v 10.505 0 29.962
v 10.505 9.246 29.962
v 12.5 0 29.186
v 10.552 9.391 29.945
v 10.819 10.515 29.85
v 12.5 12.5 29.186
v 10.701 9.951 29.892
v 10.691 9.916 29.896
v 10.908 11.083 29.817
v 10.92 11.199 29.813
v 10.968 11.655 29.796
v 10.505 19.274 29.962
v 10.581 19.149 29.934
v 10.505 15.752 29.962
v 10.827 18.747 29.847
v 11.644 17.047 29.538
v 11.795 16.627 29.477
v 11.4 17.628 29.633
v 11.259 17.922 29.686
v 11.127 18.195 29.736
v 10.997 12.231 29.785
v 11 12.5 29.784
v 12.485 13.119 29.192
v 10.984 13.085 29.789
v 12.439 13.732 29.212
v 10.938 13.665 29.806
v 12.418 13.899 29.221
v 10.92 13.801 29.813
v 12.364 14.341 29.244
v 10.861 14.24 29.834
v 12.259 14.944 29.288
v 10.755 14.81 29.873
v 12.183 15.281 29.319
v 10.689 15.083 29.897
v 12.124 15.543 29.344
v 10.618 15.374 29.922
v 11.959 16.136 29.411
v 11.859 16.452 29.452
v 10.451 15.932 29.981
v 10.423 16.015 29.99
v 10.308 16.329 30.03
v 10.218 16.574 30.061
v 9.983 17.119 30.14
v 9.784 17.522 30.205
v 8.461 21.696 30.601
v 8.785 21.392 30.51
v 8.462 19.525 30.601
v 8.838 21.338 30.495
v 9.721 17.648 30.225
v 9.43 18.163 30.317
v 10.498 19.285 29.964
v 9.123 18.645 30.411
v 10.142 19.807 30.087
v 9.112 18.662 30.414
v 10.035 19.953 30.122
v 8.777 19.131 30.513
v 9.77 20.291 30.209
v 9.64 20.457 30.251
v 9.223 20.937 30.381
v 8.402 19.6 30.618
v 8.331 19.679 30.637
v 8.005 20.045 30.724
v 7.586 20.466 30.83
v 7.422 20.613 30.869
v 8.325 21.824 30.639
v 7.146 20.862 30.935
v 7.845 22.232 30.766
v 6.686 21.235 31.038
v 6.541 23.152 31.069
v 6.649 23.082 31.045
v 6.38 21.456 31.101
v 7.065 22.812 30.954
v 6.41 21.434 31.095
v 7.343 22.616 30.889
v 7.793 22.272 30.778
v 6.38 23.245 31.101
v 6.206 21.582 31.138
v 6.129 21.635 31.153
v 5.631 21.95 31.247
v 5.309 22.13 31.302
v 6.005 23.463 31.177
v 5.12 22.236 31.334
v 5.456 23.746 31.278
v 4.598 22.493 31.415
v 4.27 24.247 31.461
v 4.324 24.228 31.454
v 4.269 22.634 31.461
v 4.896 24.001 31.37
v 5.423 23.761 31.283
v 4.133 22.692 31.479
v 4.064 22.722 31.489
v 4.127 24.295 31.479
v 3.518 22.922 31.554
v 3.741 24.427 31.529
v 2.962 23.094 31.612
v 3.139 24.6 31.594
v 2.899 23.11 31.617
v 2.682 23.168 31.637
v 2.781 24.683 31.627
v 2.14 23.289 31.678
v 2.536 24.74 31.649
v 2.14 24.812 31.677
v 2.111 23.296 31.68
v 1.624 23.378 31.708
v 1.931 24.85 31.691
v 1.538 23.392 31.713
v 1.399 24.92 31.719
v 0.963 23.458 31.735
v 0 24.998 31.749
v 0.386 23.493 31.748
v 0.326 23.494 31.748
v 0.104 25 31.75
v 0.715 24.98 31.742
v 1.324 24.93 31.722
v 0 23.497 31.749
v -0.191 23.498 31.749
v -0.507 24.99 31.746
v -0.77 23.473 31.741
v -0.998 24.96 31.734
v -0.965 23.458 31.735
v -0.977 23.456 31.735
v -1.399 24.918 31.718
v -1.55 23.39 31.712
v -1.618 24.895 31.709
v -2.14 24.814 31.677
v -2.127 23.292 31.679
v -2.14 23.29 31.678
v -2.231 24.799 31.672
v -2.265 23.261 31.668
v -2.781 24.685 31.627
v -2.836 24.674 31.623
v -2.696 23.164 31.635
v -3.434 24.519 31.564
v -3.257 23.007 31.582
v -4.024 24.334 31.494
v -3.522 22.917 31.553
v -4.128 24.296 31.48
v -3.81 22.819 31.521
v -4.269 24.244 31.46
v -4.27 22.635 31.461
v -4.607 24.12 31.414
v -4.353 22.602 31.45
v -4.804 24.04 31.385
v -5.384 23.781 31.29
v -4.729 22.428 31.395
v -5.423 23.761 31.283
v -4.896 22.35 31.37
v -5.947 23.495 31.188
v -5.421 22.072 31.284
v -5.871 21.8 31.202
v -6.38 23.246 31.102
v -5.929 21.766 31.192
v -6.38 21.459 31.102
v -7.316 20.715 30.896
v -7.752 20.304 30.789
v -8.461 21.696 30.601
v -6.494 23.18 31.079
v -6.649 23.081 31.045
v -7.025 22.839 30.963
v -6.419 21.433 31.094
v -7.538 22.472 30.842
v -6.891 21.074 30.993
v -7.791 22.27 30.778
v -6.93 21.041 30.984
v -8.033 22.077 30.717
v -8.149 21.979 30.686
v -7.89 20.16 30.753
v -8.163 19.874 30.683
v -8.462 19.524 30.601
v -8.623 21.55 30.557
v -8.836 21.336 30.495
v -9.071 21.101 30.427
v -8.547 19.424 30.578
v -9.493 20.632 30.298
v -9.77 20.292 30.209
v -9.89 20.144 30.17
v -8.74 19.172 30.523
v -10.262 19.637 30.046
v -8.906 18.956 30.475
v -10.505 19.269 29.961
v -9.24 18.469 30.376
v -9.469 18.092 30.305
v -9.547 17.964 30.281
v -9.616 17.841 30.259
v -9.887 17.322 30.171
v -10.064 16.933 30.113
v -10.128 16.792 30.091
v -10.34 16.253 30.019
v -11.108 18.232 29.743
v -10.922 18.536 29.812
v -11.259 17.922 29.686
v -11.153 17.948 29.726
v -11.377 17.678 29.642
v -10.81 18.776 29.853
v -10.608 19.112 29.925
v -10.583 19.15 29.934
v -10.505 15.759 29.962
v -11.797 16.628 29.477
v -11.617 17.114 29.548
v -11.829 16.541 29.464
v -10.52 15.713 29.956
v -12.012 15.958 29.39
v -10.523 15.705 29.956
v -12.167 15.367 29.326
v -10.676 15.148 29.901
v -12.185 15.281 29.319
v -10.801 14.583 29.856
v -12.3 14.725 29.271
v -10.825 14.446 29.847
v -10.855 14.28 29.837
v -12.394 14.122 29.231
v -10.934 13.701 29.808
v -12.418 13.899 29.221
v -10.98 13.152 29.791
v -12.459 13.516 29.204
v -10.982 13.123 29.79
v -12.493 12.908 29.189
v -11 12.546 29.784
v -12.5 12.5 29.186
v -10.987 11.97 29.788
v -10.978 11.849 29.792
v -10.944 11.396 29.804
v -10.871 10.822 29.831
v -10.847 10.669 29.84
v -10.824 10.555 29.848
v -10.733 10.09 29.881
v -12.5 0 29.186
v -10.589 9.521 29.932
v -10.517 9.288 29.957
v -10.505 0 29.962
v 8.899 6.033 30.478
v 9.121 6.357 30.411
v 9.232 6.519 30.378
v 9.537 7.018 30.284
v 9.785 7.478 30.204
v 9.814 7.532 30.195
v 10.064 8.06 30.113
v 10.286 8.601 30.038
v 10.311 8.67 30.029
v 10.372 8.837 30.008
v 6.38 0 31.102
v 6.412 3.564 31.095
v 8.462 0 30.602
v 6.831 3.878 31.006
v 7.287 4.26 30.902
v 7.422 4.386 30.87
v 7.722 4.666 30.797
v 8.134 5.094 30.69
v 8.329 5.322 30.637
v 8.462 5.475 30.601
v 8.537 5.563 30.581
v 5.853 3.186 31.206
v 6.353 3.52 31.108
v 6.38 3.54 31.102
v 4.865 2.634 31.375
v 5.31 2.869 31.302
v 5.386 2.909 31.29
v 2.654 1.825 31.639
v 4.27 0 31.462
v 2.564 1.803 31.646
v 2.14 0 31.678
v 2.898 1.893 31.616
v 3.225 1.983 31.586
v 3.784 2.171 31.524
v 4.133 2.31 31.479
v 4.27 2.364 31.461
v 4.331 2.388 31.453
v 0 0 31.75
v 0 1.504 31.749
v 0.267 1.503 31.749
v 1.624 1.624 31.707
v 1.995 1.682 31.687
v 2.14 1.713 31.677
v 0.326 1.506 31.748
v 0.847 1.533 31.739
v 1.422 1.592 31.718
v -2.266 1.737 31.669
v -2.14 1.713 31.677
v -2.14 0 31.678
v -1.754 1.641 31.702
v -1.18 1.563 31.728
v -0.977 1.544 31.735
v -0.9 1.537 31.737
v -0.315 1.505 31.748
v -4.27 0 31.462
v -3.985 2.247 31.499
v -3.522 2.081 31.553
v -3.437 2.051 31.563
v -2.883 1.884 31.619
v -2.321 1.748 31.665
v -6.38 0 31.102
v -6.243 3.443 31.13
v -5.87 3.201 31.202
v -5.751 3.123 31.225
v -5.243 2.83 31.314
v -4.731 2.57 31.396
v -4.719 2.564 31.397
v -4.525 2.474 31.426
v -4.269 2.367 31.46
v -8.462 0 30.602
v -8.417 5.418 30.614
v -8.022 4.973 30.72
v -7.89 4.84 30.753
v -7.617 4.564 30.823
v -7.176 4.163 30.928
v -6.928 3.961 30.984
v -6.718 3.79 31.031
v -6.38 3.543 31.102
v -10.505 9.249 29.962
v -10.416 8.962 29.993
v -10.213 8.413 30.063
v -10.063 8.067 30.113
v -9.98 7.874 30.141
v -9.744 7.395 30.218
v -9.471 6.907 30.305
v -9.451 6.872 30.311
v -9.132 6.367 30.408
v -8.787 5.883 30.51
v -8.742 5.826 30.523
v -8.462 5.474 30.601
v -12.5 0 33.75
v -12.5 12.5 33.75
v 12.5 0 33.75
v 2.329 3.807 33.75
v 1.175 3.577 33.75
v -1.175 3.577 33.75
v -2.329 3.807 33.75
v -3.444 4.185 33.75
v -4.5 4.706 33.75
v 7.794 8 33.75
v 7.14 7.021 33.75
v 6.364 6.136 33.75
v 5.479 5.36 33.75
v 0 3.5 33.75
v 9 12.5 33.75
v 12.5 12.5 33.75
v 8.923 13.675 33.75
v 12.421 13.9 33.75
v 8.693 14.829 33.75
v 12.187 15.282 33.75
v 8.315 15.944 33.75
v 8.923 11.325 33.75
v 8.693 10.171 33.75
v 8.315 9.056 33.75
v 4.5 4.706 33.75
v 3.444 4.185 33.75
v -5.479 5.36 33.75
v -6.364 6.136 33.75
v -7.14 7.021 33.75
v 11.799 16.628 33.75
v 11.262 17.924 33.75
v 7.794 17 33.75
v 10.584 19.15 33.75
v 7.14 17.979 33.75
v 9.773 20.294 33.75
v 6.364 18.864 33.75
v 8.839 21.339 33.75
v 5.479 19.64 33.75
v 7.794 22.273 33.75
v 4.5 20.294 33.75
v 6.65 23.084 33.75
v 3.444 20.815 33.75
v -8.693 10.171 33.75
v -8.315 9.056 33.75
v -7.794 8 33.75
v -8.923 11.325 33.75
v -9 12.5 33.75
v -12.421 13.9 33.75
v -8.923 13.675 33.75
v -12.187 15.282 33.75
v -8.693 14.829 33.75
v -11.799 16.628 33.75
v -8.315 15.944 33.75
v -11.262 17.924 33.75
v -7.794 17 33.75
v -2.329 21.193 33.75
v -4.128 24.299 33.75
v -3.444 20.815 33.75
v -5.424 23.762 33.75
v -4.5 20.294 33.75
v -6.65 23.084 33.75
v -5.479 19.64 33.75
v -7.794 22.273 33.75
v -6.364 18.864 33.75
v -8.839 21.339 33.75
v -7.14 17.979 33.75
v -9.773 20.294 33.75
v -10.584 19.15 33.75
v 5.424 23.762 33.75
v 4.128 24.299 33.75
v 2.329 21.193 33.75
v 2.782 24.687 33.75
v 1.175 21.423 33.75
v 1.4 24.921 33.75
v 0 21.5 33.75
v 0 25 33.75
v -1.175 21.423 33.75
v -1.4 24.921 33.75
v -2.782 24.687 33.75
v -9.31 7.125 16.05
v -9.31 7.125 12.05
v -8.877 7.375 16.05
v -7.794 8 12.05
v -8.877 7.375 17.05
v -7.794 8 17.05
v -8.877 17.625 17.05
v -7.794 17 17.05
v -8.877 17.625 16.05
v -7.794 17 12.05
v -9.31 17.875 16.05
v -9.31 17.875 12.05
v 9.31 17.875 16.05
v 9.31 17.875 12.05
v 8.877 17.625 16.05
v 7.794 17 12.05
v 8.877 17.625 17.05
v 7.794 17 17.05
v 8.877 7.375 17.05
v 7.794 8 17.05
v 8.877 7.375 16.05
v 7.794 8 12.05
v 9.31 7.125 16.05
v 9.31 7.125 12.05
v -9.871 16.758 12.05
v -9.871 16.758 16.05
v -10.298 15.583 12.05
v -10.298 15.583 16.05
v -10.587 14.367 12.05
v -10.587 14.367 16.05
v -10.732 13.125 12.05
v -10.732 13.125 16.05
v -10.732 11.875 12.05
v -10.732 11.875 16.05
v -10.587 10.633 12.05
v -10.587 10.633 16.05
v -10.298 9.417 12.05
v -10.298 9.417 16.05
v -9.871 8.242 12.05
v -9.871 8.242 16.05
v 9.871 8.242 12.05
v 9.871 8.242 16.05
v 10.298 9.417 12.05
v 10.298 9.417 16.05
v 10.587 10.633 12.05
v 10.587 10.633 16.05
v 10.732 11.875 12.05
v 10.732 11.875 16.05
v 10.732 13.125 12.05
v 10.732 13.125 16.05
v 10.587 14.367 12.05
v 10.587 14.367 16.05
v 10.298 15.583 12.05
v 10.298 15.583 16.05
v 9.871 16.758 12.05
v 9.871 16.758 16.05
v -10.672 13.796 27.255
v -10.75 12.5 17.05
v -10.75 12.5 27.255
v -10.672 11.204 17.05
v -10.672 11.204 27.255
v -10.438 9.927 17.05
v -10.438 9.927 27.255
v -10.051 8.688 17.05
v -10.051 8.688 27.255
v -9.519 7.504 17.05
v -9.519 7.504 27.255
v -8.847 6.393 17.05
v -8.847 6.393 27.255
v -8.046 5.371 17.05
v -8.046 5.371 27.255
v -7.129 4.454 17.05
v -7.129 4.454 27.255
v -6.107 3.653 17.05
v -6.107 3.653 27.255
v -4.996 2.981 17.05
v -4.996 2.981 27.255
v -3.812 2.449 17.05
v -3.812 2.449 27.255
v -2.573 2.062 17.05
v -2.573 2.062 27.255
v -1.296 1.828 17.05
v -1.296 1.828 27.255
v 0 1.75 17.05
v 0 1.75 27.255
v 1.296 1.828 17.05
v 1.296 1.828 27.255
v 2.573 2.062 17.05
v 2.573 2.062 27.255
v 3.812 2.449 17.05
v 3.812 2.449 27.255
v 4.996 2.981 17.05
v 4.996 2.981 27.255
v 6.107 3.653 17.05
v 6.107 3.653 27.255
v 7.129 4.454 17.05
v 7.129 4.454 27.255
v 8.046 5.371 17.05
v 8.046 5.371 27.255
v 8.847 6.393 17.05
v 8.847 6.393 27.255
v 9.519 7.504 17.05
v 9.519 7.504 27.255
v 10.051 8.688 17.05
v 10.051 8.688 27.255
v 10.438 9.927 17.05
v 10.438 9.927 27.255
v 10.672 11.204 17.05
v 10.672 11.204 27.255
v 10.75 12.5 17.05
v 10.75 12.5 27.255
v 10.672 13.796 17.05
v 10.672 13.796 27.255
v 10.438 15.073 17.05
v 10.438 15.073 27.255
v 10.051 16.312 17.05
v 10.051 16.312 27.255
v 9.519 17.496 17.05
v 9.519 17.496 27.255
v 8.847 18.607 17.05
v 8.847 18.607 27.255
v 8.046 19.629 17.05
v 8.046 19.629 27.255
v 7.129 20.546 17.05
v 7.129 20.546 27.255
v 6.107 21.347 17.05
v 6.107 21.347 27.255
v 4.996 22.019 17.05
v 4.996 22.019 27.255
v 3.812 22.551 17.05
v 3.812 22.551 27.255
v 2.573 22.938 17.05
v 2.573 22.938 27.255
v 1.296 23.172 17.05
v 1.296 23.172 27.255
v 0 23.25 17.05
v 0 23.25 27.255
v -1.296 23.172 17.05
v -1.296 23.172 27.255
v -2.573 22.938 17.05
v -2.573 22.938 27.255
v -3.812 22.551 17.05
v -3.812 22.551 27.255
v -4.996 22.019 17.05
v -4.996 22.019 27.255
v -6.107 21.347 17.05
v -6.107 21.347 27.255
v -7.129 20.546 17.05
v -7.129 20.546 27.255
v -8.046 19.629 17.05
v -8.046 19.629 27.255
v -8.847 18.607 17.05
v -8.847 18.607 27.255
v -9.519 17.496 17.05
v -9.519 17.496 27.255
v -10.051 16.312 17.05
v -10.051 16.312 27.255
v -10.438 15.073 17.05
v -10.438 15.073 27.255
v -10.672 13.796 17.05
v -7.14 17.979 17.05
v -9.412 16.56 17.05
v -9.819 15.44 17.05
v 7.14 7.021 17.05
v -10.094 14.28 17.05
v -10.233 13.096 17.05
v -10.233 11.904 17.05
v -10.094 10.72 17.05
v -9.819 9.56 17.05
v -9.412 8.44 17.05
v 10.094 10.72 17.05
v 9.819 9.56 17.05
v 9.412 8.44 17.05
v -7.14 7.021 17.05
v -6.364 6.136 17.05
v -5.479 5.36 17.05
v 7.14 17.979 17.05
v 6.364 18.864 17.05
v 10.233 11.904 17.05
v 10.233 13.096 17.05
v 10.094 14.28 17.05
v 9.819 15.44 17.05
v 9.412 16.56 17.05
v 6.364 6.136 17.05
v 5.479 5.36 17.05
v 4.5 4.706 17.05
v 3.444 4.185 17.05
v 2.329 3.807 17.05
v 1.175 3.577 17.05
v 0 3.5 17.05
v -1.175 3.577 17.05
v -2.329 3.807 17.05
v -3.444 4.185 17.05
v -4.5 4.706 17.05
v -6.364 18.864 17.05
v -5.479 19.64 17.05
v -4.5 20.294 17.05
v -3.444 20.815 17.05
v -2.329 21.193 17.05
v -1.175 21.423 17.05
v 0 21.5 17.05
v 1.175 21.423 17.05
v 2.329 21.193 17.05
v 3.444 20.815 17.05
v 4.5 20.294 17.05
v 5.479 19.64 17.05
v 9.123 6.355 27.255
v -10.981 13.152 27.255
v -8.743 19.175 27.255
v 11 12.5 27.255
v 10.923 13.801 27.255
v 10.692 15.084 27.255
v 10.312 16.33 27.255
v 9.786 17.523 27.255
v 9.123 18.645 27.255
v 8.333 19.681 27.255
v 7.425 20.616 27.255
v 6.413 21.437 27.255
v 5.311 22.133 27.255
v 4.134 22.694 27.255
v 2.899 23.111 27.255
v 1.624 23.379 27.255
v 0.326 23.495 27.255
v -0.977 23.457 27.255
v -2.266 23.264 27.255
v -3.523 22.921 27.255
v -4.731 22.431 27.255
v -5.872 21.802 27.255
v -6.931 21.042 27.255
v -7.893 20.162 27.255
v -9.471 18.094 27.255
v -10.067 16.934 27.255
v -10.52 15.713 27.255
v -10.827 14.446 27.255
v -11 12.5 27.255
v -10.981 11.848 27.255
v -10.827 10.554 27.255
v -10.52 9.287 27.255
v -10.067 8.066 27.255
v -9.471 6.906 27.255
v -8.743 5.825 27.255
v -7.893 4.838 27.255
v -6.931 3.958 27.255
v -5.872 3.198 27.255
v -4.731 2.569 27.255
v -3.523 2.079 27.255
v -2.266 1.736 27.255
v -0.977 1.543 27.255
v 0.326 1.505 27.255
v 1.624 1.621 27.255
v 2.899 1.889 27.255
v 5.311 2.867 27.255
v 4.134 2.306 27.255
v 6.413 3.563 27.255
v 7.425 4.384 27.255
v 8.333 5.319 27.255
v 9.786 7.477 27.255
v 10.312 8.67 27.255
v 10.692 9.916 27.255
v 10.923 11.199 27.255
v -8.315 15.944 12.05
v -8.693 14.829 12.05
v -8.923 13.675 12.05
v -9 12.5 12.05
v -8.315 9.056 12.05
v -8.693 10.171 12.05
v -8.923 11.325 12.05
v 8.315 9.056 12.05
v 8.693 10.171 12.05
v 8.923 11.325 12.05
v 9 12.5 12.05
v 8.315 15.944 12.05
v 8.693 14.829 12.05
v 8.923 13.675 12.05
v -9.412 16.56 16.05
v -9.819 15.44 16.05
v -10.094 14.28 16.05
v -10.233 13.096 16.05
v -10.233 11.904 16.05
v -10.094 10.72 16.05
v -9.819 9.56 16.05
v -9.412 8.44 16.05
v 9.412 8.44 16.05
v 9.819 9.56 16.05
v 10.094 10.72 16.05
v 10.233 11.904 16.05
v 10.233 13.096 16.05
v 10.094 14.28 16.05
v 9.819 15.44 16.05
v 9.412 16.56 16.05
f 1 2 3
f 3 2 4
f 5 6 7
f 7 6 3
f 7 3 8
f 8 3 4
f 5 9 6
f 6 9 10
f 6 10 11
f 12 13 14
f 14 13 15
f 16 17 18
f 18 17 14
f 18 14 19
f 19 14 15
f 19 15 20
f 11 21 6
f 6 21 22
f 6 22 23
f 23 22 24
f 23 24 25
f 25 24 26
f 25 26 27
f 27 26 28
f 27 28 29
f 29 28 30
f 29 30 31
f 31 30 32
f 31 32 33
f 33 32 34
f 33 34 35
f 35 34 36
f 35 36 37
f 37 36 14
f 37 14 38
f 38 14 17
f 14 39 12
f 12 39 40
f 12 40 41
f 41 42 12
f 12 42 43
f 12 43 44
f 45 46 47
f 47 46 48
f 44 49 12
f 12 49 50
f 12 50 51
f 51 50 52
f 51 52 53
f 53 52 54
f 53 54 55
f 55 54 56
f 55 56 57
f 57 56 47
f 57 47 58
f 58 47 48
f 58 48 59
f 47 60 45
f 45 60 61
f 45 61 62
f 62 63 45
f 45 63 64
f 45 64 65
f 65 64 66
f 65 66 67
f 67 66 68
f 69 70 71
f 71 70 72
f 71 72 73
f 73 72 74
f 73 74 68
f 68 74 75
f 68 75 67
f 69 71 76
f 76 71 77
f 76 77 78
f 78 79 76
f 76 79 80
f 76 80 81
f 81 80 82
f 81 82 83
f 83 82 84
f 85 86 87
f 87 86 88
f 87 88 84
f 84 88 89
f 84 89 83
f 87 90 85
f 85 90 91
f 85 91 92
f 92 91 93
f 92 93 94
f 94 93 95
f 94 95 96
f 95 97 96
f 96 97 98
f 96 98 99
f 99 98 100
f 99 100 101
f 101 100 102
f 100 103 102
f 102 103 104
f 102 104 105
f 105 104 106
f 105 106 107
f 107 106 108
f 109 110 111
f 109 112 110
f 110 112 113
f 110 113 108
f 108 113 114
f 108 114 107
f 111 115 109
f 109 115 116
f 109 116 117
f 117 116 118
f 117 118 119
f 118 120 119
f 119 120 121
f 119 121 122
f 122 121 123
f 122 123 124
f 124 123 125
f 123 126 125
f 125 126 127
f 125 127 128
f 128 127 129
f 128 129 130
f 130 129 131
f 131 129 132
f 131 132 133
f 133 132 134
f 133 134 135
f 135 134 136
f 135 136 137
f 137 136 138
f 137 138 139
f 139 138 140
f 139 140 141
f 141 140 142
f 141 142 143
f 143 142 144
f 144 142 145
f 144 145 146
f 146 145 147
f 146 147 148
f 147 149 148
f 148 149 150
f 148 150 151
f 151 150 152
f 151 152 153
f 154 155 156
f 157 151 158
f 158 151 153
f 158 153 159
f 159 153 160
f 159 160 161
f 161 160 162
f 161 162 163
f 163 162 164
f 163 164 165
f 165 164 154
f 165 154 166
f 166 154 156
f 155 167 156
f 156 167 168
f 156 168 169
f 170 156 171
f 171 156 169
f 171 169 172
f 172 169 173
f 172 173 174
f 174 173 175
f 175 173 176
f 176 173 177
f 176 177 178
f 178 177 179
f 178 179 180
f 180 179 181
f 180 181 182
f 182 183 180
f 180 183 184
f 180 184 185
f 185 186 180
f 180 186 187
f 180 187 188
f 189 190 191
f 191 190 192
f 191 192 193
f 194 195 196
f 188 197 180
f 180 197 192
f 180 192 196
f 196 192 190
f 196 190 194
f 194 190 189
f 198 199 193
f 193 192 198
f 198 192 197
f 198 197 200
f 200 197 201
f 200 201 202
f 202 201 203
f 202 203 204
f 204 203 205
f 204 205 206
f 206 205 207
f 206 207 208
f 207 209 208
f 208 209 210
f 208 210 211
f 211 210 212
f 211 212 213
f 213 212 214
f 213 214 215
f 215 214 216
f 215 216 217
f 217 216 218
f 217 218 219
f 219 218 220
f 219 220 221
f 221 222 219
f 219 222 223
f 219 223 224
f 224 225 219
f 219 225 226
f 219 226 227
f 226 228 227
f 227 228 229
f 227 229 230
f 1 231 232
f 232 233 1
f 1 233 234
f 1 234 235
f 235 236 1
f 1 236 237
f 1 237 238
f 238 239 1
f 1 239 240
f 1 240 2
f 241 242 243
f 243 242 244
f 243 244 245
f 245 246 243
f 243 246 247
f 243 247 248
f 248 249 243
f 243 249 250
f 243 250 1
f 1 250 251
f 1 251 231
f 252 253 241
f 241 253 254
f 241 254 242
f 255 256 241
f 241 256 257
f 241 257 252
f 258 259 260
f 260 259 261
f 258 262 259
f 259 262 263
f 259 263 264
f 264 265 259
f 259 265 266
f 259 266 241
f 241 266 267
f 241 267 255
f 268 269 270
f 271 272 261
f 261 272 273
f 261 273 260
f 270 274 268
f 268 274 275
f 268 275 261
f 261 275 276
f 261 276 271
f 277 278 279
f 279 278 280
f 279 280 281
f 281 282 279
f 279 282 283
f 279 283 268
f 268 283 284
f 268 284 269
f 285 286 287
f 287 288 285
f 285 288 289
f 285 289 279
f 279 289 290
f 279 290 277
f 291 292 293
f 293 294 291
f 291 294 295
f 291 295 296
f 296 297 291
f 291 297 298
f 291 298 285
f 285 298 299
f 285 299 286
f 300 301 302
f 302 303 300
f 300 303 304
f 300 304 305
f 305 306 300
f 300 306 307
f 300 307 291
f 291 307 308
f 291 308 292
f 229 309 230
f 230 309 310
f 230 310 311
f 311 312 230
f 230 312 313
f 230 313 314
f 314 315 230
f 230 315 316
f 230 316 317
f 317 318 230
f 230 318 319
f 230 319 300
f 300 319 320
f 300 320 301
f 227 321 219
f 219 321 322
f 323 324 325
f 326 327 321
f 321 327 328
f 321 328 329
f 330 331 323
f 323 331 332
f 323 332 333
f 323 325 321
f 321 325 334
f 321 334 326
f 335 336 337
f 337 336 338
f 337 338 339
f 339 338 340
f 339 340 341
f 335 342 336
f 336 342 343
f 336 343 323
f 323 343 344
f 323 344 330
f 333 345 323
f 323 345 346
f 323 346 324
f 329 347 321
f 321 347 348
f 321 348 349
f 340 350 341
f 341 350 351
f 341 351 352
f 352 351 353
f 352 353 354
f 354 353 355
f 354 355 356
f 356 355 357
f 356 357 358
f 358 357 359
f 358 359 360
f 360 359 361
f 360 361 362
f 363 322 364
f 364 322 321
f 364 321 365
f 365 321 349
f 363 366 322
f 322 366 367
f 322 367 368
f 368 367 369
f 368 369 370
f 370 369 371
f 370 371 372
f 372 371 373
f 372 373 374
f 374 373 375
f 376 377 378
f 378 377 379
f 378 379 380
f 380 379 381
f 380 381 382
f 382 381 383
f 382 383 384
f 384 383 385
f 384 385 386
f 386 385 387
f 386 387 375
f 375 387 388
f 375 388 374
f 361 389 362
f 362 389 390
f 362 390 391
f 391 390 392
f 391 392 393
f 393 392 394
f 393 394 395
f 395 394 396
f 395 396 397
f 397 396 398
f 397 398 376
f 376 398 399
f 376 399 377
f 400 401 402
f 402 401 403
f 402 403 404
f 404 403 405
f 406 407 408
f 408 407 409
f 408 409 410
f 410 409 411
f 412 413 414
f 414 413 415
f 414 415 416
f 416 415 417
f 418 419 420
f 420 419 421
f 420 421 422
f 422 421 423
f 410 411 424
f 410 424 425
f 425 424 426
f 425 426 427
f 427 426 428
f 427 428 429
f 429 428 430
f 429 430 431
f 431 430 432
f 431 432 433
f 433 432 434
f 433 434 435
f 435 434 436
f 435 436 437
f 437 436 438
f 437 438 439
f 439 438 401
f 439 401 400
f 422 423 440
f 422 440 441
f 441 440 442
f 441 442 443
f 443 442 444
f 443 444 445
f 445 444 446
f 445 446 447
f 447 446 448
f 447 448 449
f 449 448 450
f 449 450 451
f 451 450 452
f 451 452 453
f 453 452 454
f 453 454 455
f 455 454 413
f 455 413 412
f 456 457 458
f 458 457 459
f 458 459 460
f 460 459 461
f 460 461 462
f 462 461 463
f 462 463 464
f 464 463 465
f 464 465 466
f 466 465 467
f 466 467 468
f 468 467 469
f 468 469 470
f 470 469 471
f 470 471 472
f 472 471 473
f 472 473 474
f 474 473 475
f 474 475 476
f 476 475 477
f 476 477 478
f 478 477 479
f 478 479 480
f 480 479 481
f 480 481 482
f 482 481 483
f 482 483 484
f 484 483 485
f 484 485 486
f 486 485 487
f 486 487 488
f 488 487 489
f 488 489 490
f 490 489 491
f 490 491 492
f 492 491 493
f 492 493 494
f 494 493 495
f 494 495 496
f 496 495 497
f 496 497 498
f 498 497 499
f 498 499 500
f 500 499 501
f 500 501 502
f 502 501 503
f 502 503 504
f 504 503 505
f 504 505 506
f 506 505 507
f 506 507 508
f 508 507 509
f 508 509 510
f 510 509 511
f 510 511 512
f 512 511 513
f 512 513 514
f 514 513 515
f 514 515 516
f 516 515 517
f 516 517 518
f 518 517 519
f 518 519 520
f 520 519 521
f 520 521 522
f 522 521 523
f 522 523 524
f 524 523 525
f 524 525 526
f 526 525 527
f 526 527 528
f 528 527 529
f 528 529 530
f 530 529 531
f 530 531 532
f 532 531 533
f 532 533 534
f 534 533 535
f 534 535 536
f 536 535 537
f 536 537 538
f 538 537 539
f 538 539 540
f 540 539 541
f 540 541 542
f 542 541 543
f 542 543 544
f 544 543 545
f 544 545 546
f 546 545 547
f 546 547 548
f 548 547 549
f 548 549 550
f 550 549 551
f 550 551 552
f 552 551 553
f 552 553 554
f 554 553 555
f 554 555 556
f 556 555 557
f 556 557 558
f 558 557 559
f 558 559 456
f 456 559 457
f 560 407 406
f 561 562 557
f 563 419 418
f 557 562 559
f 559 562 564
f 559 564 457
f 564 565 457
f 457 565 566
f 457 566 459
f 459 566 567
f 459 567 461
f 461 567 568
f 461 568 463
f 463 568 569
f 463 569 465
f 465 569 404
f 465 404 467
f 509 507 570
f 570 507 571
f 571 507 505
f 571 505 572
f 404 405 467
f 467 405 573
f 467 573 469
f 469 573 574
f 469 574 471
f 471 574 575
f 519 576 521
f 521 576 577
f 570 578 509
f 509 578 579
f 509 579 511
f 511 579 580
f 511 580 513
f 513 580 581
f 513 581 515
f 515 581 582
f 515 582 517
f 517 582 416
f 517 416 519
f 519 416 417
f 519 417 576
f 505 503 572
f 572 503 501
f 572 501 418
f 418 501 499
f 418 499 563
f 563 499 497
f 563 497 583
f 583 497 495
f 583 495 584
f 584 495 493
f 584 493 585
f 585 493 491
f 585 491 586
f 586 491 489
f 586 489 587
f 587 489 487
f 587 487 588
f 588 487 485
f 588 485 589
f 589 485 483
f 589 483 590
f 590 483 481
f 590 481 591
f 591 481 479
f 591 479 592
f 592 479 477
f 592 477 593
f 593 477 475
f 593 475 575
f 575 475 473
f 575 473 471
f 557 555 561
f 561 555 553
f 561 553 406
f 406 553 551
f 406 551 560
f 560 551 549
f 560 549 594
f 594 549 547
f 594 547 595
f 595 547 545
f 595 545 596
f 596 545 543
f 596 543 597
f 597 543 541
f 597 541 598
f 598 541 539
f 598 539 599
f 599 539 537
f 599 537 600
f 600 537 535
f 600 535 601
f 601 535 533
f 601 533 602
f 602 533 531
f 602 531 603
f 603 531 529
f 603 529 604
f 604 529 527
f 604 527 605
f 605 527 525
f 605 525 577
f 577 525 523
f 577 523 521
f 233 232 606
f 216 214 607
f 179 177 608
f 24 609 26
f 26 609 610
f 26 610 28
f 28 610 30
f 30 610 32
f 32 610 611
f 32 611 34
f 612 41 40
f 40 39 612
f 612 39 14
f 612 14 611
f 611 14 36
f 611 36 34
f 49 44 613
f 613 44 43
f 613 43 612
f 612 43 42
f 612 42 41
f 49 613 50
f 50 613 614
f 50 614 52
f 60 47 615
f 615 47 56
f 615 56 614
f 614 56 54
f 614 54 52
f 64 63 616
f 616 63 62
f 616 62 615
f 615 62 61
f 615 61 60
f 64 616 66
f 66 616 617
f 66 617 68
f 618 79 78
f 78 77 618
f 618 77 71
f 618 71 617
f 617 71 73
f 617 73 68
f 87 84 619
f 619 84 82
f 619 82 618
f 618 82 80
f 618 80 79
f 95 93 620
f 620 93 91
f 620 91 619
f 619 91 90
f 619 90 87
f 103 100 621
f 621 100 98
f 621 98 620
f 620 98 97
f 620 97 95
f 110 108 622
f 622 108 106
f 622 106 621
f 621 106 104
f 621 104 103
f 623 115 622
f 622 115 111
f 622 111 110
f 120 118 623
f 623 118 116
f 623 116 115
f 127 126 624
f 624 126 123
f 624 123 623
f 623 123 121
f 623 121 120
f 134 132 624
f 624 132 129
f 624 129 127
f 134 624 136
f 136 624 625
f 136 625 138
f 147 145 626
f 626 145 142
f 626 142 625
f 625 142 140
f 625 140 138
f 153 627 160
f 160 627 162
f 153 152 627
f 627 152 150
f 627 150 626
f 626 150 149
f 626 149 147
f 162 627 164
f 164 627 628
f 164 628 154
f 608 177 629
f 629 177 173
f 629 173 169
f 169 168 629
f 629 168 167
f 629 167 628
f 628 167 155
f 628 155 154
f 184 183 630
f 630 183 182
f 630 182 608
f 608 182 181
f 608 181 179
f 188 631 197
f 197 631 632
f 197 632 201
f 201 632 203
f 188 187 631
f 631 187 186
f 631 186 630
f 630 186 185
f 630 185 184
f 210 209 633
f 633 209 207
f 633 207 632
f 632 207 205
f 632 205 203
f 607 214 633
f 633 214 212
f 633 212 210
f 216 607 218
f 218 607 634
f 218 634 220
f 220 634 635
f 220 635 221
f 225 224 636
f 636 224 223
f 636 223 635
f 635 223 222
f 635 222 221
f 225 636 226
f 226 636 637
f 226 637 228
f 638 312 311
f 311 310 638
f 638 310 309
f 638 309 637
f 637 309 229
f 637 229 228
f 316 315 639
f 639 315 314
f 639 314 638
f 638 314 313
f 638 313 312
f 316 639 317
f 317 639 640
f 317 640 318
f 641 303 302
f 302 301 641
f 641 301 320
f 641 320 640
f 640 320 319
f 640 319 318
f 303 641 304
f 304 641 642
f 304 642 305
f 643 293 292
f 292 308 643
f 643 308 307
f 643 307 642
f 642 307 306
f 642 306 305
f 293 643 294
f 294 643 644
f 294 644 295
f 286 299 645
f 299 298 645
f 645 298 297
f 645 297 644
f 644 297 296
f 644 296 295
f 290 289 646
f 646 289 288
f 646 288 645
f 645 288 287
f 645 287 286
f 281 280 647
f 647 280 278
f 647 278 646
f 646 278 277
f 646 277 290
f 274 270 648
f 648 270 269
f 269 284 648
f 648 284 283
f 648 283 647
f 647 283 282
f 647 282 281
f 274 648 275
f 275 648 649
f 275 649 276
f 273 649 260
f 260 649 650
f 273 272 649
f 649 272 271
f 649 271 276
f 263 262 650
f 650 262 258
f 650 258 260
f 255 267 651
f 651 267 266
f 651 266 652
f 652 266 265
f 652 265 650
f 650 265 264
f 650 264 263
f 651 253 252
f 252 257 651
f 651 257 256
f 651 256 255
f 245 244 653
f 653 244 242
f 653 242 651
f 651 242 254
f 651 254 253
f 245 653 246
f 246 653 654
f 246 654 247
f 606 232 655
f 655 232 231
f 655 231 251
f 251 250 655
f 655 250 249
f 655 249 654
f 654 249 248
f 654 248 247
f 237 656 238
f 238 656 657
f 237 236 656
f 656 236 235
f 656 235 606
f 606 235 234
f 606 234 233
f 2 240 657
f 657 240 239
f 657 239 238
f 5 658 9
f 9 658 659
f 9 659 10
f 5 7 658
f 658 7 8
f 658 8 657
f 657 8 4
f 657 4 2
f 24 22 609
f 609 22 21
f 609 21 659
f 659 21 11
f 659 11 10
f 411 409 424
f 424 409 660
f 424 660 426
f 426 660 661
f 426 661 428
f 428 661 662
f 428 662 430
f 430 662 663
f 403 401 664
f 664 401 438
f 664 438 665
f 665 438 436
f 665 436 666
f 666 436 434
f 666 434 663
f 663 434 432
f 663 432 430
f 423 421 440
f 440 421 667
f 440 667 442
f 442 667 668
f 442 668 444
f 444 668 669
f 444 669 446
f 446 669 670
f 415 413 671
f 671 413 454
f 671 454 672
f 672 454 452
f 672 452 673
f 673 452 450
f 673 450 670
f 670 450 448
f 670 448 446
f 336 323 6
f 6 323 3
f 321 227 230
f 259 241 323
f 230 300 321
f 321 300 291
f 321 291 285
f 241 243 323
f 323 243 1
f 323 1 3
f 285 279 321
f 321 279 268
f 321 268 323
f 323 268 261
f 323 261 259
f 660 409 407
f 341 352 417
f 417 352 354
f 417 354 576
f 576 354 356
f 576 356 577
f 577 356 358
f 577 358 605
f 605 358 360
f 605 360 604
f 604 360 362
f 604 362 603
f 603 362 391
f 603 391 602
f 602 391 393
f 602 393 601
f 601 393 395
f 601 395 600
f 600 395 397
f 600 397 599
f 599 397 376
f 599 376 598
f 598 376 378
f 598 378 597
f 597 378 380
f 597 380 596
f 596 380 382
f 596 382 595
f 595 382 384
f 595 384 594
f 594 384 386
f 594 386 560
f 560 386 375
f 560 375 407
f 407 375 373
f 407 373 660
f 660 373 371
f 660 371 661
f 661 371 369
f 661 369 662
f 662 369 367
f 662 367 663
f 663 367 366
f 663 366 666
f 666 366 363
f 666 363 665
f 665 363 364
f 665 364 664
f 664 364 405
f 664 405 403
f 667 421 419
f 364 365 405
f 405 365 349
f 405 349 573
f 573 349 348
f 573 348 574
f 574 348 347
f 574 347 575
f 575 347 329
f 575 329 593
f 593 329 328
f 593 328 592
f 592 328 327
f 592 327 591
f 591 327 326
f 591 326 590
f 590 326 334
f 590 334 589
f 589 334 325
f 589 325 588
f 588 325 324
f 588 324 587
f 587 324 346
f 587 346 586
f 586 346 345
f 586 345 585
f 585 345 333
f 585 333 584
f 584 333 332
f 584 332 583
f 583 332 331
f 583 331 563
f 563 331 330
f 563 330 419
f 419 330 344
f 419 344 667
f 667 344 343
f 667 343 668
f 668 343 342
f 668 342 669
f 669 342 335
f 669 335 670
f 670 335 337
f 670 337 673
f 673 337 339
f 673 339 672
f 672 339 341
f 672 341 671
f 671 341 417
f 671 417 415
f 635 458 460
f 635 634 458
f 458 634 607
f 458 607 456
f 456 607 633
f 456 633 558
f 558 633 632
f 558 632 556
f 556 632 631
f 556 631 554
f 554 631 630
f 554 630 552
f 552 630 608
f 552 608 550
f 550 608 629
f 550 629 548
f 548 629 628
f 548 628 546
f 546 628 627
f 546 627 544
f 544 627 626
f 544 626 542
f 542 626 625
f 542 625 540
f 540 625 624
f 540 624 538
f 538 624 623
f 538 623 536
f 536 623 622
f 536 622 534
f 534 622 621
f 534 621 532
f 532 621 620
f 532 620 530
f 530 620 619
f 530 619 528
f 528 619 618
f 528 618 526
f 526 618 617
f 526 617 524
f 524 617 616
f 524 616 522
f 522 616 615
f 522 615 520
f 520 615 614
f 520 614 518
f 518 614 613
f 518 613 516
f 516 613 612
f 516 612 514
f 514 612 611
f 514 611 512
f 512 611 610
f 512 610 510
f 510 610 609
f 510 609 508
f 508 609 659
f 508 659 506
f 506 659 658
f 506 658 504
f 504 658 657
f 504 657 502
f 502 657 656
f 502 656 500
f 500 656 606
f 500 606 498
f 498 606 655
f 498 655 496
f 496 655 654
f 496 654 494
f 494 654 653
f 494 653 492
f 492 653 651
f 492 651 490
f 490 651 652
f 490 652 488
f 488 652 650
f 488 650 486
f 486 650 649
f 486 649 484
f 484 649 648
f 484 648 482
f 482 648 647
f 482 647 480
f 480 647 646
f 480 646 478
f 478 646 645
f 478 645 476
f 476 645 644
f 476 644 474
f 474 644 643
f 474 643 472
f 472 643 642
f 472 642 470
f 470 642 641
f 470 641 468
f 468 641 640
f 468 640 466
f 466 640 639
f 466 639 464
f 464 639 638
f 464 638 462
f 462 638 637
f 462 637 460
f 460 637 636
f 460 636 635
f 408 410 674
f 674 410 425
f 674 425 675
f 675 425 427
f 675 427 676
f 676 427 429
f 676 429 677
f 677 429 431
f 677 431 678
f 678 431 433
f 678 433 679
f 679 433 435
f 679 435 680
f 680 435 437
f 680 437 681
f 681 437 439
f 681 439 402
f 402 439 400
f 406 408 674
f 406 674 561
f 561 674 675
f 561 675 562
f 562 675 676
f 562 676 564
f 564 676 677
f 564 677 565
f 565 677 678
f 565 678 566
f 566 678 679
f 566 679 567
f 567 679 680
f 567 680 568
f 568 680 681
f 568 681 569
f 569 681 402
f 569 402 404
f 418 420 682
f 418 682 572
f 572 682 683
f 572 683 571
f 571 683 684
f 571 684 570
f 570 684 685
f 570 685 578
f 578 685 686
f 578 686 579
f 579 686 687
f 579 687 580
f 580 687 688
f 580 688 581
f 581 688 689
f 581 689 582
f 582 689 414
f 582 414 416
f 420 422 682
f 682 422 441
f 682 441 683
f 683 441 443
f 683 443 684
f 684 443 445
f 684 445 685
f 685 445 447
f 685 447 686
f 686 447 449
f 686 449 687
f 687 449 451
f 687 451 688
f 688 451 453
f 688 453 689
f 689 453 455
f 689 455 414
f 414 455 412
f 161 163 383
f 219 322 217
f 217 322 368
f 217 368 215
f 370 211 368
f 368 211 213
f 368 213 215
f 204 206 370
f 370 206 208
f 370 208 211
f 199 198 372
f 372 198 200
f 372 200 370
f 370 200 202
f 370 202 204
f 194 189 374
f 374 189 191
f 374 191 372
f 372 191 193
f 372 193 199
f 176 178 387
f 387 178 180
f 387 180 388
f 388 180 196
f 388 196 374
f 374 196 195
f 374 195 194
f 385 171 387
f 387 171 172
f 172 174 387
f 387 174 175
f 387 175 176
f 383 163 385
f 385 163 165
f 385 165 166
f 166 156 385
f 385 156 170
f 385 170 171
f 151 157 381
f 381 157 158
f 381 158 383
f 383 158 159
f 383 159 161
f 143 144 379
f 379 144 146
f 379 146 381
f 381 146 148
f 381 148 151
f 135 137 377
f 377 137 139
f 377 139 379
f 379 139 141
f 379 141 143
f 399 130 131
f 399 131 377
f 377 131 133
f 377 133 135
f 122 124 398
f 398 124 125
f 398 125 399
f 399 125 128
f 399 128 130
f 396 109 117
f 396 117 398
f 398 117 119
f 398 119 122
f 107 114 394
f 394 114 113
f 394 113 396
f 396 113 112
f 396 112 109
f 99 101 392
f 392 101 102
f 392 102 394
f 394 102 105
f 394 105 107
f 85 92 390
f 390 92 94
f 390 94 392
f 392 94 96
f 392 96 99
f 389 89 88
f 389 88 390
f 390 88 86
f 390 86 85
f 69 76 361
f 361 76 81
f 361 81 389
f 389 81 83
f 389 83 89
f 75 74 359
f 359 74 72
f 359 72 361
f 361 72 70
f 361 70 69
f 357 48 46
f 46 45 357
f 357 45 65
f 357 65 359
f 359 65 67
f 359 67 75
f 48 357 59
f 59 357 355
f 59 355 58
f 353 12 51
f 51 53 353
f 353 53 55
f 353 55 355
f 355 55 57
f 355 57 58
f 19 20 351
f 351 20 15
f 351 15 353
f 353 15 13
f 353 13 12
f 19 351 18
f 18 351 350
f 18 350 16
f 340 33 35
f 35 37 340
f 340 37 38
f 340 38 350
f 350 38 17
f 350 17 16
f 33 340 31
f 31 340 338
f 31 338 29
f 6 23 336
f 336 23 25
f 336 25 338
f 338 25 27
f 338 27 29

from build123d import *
from build123d.topology import SkipClean

# Parameters (mm, degrees)
EXTRUDE_1_DEPTH     = 25
SKETCH_2_R          = 9
CUT_EXTRUDE_2_DEPTH = 29.321046499
SKETCH_3_R          = 11
SKETCH_3_R_2        = 9
TUBE_DEPTH          = 16.7
SUPPORT_DEPTH       = 5
HOLDER_START        = -15.205
SKETCH_5_R          = 11
SKETCH_5_R_2        = 10.75
HOLDER_DEPTH        = 15.205
SKETCH_7_W          = 0.5
SKETCH_7_H          = 1
SKETCH_8_OUTSIDE_W  = 35.296
SKETCH_8_OUTSIDE_H  = 35.296
CUT_EXTRUDE_3_DEPTH = 10


with BuildPart() as part:
    # Эскиз1 → Вытянуть1 (new body)
    with BuildSketch(Plane(origin=(0, 0, 0), x_dir=(1, 0, 0), z_dir=(0, 1, 0))):
        with BuildLine():
            Line((-12.5, -29.18582704), (-12.5, -33.75))
            Line((-12.5, -33.75), (12.5, -33.75))
            Line((12.5, -33.75), (12.5, -29.18582704))
            ThreePointArc((12.5, -29.18582704), (0, -31.75), (-12.5, -29.18582704))
        make_face()
    extrude(amount=EXTRUDE_1_DEPTH)

    # Эскиз2 → Вытянуть2 (cut, through all)
    with BuildSketch(Plane.XY.offset(33.75)):
        with Locations((0, 12.5)):
            Circle(SKETCH_2_R)
    extrude(amount=-CUT_EXTRUDE_2_DEPTH, mode=Mode.SUBTRACT)

    # Эскиз3 → tube (add)
    with BuildSketch(Plane.XY.offset(33.75)):
        with Locations((0, 12.5)):
            Circle(SKETCH_3_R)
        with Locations((0, 12.5)):
            Circle(SKETCH_3_R_2, mode=Mode.SUBTRACT)
    extrude(amount=-TUBE_DEPTH)

    # Эскиз4 → support (add)
    with SkipClean():  # the faces are left unmerged after this step: merging them gives an invalid solid
        with BuildSketch(Plane(origin=(0, 0, 17.05), x_dir=(-1, 0, 0), z_dir=(0, 0, -1))):
            with BuildLine():
                Line((7.794228634, 17), (9.526279442, 18))
                ThreePointArc((9.526279442, 18), (11, 12.5), (9.526279442, 7))
                Line((9.526279442, 7), (7.794228634, 8))
                ThreePointArc((7.794228634, 8), (9, 12.5), (7.794228634, 17))
            make_face()
            with BuildLine():
                Line((-7.794228634, 8), (-9.526279442, 7))
                ThreePointArc((-9.526279442, 7), (-11, 12.5), (-9.526279442, 18))
                Line((-9.526279442, 18), (-7.794228634, 17))
                ThreePointArc((-7.794228634, 17), (-9, 12.5), (-7.794228634, 8))
            make_face()
        extrude(amount=SUPPORT_DEPTH)

    # Эскиз5 → holder (cut)
    with SkipClean():  # the faces are left unmerged after this step: merging them gives an invalid solid
        with BuildSketch(Plane(origin=(0, 0, 12.05), x_dir=(-1, 0, 0), z_dir=(0, 0, -1)).offset(HOLDER_START)):
            with Locations((0, 12.5)):
                Circle(SKETCH_5_R)
            with Locations((0, 12.5)):
                Circle(SKETCH_5_R_2, mode=Mode.SUBTRACT)
        extrude(amount=HOLDER_DEPTH, mode=Mode.SUBTRACT)

    # Эскиз7 → Вырез-Повернуть2 (revolve, cut)
    with SkipClean():  # the faces are left unmerged after this step: merging them gives an invalid solid
        with BuildSketch(Plane(origin=(-5.412658774, 9.375, 0), x_dir=(0.8660254037844456, 0.4999999999999881, 0), z_dir=(-0.4999999999999881, 0.8660254037844456, 0))):
            with Locations((16.75, -16.55)):
                Rectangle(SKETCH_7_W, SKETCH_7_H)
        revolve(axis=Axis((0, 12.5, 12.049975), (0, 0, 1)), mode=Mode.SUBTRACT)

    # Эскиз8 outside → Вытянуть3 (cut)
    with SkipClean():  # the faces are left unmerged after this step: merging them gives an invalid solid
        with BuildSketch(Plane.XY.offset(33.75)):
            with Locations((0, 12.5)):
                Rectangle(SKETCH_8_OUTSIDE_W, SKETCH_8_OUTSIDE_H)
            with BuildLine():
                Line((-12.5, 12.5), (-12.5, 0))
                Line((-12.5, 0), (12.5, 0))
                Line((12.5, 0), (12.5, 12.5))
                ThreePointArc((12.5, 12.5), (0, 25), (-12.5, 12.5))
            make_face(mode=Mode.SUBTRACT)
        extrude(amount=-CUT_EXTRUDE_3_DEPTH, mode=Mode.SUBTRACT)


solid = part.part
